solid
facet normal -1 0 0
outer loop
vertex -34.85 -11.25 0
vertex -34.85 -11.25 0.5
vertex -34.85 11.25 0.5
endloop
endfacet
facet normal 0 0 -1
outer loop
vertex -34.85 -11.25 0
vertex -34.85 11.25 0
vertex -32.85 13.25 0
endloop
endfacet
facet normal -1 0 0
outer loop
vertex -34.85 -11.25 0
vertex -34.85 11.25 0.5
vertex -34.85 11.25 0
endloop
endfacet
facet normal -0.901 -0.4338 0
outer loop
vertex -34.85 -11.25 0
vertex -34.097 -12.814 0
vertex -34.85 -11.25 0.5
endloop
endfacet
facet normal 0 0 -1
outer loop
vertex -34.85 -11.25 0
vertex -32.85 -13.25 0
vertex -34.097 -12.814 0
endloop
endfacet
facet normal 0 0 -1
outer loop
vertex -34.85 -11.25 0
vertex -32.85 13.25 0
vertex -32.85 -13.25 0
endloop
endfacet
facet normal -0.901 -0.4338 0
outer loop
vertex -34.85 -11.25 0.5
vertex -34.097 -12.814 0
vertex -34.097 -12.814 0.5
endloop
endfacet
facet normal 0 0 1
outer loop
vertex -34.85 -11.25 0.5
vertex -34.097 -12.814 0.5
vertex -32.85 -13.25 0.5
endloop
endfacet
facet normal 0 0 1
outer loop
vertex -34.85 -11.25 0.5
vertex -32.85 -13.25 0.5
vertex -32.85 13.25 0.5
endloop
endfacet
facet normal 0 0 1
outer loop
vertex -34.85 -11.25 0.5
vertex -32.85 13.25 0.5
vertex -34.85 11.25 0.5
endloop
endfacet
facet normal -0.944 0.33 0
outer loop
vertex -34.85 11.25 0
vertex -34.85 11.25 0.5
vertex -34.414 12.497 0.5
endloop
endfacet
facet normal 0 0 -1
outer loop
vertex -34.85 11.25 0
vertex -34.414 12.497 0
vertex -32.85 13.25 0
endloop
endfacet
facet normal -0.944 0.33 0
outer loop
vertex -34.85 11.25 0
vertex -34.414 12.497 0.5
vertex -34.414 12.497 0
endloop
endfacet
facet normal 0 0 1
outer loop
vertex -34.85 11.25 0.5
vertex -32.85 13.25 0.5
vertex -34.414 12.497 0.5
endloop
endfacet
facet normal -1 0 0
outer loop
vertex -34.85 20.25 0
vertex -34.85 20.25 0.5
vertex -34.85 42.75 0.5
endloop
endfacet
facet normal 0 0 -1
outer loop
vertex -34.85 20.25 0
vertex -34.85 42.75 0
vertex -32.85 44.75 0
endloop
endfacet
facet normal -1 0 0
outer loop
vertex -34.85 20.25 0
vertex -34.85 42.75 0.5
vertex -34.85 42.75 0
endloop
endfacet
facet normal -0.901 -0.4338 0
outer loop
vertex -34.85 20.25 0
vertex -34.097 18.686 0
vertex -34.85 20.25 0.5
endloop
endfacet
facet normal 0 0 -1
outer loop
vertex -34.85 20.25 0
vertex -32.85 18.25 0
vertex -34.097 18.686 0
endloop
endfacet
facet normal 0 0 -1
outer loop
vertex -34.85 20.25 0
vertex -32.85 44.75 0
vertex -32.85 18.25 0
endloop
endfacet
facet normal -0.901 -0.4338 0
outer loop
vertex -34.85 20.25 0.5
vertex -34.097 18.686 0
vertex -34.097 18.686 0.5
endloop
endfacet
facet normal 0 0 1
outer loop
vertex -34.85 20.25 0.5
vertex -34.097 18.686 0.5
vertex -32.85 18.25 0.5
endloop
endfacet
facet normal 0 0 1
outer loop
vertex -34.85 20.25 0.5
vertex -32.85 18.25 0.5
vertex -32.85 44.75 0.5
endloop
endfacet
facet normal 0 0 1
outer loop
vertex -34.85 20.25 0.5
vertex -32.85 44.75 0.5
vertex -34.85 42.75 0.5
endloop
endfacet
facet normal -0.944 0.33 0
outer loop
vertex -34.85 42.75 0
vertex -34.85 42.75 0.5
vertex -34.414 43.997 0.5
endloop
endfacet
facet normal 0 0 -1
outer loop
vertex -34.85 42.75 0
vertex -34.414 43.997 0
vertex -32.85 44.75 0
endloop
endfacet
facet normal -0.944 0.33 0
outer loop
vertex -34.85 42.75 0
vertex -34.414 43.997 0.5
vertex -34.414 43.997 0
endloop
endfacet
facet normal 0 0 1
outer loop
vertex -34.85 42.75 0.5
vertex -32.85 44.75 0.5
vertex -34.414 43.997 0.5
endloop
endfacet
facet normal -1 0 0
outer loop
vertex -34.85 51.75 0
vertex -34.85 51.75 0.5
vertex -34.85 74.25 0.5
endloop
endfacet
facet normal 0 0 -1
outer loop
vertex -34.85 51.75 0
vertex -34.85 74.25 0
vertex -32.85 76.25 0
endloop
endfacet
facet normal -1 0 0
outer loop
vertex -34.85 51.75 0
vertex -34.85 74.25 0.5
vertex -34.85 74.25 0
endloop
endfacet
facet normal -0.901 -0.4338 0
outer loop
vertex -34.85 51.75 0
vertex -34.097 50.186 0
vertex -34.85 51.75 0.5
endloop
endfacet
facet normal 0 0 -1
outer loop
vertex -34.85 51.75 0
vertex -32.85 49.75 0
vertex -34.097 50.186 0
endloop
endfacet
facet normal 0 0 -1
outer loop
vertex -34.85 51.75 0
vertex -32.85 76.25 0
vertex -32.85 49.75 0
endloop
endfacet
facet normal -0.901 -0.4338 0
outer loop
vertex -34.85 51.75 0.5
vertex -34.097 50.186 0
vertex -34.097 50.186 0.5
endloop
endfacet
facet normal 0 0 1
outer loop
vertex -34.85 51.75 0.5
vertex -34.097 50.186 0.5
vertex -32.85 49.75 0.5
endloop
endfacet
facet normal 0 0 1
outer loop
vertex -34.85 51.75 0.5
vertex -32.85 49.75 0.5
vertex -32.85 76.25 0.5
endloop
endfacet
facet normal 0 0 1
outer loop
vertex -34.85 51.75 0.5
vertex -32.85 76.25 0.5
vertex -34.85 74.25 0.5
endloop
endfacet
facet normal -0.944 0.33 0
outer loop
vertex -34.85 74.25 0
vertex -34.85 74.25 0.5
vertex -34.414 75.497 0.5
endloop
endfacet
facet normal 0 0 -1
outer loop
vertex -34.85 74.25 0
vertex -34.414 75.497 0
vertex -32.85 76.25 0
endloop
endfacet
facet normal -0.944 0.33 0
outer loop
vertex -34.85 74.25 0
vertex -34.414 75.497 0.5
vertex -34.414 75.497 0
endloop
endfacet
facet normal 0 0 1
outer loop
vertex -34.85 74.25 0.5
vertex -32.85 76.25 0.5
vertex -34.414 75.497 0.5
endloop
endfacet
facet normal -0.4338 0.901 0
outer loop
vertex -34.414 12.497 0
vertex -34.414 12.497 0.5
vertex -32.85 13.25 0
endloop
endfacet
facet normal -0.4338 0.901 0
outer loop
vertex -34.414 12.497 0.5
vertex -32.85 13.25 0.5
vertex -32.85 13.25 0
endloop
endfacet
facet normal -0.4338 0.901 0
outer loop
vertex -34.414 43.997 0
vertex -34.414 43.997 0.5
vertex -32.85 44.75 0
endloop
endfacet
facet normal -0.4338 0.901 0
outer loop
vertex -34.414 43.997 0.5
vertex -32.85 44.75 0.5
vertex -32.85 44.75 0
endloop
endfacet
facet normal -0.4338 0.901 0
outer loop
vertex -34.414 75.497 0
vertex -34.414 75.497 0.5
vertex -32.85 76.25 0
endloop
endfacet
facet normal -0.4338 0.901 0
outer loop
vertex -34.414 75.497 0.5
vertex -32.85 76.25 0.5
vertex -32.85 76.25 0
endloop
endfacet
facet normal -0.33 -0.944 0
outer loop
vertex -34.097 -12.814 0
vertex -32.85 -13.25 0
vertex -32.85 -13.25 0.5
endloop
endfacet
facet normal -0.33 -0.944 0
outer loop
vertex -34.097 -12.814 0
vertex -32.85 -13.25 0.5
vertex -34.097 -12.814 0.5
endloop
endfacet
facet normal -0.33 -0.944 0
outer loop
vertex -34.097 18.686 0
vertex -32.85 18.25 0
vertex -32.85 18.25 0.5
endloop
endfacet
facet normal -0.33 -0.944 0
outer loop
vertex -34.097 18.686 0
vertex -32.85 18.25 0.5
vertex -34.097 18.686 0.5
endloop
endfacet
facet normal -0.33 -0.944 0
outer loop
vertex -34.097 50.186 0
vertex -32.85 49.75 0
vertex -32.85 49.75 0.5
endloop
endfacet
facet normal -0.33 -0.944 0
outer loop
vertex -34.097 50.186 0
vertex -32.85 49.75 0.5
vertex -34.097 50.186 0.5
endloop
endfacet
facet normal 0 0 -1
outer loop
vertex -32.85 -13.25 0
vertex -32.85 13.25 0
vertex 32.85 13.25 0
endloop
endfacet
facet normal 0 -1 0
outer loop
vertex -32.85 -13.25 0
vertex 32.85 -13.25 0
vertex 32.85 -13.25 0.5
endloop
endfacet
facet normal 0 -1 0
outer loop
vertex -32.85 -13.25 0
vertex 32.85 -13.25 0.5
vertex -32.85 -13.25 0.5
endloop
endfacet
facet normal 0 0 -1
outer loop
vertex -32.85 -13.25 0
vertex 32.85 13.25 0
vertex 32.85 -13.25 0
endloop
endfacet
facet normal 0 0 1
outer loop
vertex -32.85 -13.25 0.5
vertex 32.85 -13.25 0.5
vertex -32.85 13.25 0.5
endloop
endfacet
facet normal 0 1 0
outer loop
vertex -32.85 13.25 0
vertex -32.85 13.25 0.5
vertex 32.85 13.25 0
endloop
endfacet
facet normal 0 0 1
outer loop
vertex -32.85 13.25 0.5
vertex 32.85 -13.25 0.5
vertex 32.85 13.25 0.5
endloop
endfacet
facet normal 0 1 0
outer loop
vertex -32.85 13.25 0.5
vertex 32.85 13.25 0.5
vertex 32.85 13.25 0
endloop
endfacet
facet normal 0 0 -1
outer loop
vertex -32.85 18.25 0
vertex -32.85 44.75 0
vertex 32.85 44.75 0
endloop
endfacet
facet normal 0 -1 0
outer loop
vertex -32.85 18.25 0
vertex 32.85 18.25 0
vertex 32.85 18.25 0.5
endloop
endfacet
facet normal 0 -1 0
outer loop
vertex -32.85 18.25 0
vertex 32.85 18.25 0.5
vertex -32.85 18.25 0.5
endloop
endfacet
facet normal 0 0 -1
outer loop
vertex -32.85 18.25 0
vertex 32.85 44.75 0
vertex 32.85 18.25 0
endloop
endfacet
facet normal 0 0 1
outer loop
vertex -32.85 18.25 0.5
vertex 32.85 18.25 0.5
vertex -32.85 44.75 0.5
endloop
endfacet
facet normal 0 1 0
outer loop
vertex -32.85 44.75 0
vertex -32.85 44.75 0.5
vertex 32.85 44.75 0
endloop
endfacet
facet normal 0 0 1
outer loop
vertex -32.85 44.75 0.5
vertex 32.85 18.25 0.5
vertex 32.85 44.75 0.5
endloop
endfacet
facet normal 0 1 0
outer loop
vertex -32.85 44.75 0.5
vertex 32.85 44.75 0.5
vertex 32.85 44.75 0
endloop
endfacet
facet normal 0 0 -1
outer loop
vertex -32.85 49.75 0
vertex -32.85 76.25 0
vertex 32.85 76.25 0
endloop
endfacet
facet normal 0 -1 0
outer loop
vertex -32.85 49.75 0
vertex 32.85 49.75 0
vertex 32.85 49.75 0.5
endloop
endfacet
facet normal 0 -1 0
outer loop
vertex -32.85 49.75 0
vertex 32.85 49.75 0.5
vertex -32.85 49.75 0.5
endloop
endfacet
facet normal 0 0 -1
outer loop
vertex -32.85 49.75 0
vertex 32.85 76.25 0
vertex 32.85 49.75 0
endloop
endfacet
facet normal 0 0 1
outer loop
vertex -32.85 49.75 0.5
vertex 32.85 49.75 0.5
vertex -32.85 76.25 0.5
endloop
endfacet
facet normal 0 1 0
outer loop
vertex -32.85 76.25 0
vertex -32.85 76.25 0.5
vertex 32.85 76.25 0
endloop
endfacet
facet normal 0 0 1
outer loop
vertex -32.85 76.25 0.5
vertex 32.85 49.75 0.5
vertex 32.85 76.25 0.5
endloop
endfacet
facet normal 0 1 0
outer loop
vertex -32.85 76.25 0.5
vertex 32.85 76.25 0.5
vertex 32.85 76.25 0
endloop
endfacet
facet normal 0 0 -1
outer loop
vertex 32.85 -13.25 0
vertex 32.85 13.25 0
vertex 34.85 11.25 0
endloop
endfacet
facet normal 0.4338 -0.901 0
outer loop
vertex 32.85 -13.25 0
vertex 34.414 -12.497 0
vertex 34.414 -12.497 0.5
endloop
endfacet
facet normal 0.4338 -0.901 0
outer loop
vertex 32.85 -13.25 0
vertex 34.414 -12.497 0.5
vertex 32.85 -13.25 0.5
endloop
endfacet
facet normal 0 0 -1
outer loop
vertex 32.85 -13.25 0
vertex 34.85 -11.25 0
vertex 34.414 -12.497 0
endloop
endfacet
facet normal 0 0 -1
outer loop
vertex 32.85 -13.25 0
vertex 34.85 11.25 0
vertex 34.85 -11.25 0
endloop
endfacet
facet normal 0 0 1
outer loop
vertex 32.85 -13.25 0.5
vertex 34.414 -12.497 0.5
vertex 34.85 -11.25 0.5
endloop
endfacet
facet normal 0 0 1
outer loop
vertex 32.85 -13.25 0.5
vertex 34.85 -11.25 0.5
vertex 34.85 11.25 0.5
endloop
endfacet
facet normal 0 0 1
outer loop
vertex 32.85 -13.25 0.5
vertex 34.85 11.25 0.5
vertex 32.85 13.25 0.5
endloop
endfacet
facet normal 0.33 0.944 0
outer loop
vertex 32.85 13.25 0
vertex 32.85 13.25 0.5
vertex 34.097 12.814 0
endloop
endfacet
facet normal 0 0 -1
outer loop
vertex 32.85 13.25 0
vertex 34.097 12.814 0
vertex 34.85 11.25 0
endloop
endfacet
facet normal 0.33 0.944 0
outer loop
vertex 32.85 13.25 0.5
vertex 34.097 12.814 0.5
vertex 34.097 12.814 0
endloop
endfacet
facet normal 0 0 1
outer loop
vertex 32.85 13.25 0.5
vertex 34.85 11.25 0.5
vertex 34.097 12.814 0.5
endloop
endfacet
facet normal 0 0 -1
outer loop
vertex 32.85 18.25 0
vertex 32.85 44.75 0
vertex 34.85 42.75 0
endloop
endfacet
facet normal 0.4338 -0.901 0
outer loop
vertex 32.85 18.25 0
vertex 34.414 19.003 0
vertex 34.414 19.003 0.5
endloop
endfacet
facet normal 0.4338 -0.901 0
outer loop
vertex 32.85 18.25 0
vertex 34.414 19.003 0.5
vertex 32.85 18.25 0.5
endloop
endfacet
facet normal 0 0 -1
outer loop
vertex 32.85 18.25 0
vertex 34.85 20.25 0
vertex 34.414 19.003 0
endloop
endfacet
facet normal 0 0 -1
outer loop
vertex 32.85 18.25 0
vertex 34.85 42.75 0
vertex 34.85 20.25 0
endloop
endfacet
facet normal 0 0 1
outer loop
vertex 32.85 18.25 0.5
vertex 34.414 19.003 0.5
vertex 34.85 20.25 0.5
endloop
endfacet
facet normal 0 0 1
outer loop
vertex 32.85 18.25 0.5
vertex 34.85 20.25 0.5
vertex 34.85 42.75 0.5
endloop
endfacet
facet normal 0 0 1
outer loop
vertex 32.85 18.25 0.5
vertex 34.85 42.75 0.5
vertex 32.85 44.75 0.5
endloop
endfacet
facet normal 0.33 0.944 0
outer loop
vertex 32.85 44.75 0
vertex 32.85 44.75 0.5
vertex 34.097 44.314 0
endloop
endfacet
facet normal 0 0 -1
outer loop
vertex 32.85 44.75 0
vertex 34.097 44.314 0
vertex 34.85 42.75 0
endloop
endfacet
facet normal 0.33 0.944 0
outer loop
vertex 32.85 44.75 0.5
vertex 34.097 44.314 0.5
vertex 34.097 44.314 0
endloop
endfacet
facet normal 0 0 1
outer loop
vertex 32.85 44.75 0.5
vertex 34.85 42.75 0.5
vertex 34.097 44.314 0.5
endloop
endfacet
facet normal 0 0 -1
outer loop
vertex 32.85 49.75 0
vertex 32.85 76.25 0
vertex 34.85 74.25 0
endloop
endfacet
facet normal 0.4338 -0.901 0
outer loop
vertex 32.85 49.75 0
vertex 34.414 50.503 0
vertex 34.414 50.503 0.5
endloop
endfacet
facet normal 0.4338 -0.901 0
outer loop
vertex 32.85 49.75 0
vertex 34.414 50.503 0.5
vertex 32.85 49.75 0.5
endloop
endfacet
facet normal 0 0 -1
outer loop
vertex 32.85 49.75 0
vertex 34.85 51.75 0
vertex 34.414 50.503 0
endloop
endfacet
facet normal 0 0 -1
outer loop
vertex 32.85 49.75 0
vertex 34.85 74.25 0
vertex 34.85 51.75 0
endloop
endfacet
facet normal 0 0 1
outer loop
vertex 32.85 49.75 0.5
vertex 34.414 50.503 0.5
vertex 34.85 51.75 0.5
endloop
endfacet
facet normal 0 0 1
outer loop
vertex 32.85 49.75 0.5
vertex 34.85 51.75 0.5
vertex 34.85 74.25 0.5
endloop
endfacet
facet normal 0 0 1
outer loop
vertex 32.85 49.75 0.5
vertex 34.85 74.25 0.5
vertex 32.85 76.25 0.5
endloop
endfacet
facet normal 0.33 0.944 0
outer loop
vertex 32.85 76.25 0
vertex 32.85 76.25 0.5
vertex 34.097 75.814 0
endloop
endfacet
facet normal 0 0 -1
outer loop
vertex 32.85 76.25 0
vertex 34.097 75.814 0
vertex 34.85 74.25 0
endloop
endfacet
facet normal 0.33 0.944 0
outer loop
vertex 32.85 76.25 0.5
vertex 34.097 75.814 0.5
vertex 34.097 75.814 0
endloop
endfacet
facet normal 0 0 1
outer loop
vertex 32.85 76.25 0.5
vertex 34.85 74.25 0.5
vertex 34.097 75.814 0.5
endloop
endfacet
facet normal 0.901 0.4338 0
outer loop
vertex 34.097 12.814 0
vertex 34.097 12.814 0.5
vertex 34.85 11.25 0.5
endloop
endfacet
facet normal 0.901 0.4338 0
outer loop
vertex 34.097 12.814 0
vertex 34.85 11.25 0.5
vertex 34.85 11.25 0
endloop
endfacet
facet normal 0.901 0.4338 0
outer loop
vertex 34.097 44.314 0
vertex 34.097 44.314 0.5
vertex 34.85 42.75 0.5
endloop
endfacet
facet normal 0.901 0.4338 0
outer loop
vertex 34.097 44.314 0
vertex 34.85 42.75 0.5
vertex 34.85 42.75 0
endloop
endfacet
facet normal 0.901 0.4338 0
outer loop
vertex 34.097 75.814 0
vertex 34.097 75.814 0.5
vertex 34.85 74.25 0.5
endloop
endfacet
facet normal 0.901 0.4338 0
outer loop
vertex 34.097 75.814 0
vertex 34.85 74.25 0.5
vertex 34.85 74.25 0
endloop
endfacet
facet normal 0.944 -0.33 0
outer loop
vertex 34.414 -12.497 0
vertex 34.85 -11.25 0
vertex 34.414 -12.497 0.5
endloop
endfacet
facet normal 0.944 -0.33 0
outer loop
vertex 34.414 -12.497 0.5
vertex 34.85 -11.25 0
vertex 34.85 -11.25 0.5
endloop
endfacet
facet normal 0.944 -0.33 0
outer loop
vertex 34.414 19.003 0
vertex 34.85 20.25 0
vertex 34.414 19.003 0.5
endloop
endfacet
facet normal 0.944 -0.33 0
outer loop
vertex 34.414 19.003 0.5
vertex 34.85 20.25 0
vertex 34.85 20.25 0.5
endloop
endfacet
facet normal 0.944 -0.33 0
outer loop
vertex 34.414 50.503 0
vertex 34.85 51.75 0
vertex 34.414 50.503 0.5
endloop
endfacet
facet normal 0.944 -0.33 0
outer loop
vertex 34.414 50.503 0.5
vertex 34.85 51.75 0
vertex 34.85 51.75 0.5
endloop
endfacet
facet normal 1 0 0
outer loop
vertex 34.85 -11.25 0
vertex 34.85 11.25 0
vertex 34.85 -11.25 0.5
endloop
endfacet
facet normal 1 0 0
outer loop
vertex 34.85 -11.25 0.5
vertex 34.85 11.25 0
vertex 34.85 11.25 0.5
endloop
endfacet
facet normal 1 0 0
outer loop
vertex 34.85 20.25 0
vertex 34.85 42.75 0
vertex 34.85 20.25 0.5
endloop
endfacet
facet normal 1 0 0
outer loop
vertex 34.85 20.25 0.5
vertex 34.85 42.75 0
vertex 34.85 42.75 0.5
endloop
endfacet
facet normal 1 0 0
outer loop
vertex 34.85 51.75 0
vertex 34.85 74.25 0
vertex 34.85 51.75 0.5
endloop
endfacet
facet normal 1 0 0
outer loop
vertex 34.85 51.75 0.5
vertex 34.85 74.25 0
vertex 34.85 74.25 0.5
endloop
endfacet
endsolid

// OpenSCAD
// Test spacers — stack on top of the L-bracket topper to find
// the right top_thickness. Each is 0.5mm thick.
// Print 3, then try 1, 2, or 3 stacked to see what feels best.

spacer_length = 69.7; // mm — match your bracket_length
spacer_width = 26.5;  // mm — match your bracket_width
spacer_thickness = 0.5; // mm
corner_radius = 2; // mm
spacing = 5; // mm gap between spacers on the plate

module rounded_rect(l, w, h, r) {
    linear_extrude(height = h)
        offset(r = r)
            square([l - 2*r, w - 2*r], center = true);
}

for (i = [0 : 2]) {
    translate([0, i * (spacer_width + spacing), 0])
        rounded_rect(spacer_length, spacer_width, spacer_thickness, corner_radius);
}
